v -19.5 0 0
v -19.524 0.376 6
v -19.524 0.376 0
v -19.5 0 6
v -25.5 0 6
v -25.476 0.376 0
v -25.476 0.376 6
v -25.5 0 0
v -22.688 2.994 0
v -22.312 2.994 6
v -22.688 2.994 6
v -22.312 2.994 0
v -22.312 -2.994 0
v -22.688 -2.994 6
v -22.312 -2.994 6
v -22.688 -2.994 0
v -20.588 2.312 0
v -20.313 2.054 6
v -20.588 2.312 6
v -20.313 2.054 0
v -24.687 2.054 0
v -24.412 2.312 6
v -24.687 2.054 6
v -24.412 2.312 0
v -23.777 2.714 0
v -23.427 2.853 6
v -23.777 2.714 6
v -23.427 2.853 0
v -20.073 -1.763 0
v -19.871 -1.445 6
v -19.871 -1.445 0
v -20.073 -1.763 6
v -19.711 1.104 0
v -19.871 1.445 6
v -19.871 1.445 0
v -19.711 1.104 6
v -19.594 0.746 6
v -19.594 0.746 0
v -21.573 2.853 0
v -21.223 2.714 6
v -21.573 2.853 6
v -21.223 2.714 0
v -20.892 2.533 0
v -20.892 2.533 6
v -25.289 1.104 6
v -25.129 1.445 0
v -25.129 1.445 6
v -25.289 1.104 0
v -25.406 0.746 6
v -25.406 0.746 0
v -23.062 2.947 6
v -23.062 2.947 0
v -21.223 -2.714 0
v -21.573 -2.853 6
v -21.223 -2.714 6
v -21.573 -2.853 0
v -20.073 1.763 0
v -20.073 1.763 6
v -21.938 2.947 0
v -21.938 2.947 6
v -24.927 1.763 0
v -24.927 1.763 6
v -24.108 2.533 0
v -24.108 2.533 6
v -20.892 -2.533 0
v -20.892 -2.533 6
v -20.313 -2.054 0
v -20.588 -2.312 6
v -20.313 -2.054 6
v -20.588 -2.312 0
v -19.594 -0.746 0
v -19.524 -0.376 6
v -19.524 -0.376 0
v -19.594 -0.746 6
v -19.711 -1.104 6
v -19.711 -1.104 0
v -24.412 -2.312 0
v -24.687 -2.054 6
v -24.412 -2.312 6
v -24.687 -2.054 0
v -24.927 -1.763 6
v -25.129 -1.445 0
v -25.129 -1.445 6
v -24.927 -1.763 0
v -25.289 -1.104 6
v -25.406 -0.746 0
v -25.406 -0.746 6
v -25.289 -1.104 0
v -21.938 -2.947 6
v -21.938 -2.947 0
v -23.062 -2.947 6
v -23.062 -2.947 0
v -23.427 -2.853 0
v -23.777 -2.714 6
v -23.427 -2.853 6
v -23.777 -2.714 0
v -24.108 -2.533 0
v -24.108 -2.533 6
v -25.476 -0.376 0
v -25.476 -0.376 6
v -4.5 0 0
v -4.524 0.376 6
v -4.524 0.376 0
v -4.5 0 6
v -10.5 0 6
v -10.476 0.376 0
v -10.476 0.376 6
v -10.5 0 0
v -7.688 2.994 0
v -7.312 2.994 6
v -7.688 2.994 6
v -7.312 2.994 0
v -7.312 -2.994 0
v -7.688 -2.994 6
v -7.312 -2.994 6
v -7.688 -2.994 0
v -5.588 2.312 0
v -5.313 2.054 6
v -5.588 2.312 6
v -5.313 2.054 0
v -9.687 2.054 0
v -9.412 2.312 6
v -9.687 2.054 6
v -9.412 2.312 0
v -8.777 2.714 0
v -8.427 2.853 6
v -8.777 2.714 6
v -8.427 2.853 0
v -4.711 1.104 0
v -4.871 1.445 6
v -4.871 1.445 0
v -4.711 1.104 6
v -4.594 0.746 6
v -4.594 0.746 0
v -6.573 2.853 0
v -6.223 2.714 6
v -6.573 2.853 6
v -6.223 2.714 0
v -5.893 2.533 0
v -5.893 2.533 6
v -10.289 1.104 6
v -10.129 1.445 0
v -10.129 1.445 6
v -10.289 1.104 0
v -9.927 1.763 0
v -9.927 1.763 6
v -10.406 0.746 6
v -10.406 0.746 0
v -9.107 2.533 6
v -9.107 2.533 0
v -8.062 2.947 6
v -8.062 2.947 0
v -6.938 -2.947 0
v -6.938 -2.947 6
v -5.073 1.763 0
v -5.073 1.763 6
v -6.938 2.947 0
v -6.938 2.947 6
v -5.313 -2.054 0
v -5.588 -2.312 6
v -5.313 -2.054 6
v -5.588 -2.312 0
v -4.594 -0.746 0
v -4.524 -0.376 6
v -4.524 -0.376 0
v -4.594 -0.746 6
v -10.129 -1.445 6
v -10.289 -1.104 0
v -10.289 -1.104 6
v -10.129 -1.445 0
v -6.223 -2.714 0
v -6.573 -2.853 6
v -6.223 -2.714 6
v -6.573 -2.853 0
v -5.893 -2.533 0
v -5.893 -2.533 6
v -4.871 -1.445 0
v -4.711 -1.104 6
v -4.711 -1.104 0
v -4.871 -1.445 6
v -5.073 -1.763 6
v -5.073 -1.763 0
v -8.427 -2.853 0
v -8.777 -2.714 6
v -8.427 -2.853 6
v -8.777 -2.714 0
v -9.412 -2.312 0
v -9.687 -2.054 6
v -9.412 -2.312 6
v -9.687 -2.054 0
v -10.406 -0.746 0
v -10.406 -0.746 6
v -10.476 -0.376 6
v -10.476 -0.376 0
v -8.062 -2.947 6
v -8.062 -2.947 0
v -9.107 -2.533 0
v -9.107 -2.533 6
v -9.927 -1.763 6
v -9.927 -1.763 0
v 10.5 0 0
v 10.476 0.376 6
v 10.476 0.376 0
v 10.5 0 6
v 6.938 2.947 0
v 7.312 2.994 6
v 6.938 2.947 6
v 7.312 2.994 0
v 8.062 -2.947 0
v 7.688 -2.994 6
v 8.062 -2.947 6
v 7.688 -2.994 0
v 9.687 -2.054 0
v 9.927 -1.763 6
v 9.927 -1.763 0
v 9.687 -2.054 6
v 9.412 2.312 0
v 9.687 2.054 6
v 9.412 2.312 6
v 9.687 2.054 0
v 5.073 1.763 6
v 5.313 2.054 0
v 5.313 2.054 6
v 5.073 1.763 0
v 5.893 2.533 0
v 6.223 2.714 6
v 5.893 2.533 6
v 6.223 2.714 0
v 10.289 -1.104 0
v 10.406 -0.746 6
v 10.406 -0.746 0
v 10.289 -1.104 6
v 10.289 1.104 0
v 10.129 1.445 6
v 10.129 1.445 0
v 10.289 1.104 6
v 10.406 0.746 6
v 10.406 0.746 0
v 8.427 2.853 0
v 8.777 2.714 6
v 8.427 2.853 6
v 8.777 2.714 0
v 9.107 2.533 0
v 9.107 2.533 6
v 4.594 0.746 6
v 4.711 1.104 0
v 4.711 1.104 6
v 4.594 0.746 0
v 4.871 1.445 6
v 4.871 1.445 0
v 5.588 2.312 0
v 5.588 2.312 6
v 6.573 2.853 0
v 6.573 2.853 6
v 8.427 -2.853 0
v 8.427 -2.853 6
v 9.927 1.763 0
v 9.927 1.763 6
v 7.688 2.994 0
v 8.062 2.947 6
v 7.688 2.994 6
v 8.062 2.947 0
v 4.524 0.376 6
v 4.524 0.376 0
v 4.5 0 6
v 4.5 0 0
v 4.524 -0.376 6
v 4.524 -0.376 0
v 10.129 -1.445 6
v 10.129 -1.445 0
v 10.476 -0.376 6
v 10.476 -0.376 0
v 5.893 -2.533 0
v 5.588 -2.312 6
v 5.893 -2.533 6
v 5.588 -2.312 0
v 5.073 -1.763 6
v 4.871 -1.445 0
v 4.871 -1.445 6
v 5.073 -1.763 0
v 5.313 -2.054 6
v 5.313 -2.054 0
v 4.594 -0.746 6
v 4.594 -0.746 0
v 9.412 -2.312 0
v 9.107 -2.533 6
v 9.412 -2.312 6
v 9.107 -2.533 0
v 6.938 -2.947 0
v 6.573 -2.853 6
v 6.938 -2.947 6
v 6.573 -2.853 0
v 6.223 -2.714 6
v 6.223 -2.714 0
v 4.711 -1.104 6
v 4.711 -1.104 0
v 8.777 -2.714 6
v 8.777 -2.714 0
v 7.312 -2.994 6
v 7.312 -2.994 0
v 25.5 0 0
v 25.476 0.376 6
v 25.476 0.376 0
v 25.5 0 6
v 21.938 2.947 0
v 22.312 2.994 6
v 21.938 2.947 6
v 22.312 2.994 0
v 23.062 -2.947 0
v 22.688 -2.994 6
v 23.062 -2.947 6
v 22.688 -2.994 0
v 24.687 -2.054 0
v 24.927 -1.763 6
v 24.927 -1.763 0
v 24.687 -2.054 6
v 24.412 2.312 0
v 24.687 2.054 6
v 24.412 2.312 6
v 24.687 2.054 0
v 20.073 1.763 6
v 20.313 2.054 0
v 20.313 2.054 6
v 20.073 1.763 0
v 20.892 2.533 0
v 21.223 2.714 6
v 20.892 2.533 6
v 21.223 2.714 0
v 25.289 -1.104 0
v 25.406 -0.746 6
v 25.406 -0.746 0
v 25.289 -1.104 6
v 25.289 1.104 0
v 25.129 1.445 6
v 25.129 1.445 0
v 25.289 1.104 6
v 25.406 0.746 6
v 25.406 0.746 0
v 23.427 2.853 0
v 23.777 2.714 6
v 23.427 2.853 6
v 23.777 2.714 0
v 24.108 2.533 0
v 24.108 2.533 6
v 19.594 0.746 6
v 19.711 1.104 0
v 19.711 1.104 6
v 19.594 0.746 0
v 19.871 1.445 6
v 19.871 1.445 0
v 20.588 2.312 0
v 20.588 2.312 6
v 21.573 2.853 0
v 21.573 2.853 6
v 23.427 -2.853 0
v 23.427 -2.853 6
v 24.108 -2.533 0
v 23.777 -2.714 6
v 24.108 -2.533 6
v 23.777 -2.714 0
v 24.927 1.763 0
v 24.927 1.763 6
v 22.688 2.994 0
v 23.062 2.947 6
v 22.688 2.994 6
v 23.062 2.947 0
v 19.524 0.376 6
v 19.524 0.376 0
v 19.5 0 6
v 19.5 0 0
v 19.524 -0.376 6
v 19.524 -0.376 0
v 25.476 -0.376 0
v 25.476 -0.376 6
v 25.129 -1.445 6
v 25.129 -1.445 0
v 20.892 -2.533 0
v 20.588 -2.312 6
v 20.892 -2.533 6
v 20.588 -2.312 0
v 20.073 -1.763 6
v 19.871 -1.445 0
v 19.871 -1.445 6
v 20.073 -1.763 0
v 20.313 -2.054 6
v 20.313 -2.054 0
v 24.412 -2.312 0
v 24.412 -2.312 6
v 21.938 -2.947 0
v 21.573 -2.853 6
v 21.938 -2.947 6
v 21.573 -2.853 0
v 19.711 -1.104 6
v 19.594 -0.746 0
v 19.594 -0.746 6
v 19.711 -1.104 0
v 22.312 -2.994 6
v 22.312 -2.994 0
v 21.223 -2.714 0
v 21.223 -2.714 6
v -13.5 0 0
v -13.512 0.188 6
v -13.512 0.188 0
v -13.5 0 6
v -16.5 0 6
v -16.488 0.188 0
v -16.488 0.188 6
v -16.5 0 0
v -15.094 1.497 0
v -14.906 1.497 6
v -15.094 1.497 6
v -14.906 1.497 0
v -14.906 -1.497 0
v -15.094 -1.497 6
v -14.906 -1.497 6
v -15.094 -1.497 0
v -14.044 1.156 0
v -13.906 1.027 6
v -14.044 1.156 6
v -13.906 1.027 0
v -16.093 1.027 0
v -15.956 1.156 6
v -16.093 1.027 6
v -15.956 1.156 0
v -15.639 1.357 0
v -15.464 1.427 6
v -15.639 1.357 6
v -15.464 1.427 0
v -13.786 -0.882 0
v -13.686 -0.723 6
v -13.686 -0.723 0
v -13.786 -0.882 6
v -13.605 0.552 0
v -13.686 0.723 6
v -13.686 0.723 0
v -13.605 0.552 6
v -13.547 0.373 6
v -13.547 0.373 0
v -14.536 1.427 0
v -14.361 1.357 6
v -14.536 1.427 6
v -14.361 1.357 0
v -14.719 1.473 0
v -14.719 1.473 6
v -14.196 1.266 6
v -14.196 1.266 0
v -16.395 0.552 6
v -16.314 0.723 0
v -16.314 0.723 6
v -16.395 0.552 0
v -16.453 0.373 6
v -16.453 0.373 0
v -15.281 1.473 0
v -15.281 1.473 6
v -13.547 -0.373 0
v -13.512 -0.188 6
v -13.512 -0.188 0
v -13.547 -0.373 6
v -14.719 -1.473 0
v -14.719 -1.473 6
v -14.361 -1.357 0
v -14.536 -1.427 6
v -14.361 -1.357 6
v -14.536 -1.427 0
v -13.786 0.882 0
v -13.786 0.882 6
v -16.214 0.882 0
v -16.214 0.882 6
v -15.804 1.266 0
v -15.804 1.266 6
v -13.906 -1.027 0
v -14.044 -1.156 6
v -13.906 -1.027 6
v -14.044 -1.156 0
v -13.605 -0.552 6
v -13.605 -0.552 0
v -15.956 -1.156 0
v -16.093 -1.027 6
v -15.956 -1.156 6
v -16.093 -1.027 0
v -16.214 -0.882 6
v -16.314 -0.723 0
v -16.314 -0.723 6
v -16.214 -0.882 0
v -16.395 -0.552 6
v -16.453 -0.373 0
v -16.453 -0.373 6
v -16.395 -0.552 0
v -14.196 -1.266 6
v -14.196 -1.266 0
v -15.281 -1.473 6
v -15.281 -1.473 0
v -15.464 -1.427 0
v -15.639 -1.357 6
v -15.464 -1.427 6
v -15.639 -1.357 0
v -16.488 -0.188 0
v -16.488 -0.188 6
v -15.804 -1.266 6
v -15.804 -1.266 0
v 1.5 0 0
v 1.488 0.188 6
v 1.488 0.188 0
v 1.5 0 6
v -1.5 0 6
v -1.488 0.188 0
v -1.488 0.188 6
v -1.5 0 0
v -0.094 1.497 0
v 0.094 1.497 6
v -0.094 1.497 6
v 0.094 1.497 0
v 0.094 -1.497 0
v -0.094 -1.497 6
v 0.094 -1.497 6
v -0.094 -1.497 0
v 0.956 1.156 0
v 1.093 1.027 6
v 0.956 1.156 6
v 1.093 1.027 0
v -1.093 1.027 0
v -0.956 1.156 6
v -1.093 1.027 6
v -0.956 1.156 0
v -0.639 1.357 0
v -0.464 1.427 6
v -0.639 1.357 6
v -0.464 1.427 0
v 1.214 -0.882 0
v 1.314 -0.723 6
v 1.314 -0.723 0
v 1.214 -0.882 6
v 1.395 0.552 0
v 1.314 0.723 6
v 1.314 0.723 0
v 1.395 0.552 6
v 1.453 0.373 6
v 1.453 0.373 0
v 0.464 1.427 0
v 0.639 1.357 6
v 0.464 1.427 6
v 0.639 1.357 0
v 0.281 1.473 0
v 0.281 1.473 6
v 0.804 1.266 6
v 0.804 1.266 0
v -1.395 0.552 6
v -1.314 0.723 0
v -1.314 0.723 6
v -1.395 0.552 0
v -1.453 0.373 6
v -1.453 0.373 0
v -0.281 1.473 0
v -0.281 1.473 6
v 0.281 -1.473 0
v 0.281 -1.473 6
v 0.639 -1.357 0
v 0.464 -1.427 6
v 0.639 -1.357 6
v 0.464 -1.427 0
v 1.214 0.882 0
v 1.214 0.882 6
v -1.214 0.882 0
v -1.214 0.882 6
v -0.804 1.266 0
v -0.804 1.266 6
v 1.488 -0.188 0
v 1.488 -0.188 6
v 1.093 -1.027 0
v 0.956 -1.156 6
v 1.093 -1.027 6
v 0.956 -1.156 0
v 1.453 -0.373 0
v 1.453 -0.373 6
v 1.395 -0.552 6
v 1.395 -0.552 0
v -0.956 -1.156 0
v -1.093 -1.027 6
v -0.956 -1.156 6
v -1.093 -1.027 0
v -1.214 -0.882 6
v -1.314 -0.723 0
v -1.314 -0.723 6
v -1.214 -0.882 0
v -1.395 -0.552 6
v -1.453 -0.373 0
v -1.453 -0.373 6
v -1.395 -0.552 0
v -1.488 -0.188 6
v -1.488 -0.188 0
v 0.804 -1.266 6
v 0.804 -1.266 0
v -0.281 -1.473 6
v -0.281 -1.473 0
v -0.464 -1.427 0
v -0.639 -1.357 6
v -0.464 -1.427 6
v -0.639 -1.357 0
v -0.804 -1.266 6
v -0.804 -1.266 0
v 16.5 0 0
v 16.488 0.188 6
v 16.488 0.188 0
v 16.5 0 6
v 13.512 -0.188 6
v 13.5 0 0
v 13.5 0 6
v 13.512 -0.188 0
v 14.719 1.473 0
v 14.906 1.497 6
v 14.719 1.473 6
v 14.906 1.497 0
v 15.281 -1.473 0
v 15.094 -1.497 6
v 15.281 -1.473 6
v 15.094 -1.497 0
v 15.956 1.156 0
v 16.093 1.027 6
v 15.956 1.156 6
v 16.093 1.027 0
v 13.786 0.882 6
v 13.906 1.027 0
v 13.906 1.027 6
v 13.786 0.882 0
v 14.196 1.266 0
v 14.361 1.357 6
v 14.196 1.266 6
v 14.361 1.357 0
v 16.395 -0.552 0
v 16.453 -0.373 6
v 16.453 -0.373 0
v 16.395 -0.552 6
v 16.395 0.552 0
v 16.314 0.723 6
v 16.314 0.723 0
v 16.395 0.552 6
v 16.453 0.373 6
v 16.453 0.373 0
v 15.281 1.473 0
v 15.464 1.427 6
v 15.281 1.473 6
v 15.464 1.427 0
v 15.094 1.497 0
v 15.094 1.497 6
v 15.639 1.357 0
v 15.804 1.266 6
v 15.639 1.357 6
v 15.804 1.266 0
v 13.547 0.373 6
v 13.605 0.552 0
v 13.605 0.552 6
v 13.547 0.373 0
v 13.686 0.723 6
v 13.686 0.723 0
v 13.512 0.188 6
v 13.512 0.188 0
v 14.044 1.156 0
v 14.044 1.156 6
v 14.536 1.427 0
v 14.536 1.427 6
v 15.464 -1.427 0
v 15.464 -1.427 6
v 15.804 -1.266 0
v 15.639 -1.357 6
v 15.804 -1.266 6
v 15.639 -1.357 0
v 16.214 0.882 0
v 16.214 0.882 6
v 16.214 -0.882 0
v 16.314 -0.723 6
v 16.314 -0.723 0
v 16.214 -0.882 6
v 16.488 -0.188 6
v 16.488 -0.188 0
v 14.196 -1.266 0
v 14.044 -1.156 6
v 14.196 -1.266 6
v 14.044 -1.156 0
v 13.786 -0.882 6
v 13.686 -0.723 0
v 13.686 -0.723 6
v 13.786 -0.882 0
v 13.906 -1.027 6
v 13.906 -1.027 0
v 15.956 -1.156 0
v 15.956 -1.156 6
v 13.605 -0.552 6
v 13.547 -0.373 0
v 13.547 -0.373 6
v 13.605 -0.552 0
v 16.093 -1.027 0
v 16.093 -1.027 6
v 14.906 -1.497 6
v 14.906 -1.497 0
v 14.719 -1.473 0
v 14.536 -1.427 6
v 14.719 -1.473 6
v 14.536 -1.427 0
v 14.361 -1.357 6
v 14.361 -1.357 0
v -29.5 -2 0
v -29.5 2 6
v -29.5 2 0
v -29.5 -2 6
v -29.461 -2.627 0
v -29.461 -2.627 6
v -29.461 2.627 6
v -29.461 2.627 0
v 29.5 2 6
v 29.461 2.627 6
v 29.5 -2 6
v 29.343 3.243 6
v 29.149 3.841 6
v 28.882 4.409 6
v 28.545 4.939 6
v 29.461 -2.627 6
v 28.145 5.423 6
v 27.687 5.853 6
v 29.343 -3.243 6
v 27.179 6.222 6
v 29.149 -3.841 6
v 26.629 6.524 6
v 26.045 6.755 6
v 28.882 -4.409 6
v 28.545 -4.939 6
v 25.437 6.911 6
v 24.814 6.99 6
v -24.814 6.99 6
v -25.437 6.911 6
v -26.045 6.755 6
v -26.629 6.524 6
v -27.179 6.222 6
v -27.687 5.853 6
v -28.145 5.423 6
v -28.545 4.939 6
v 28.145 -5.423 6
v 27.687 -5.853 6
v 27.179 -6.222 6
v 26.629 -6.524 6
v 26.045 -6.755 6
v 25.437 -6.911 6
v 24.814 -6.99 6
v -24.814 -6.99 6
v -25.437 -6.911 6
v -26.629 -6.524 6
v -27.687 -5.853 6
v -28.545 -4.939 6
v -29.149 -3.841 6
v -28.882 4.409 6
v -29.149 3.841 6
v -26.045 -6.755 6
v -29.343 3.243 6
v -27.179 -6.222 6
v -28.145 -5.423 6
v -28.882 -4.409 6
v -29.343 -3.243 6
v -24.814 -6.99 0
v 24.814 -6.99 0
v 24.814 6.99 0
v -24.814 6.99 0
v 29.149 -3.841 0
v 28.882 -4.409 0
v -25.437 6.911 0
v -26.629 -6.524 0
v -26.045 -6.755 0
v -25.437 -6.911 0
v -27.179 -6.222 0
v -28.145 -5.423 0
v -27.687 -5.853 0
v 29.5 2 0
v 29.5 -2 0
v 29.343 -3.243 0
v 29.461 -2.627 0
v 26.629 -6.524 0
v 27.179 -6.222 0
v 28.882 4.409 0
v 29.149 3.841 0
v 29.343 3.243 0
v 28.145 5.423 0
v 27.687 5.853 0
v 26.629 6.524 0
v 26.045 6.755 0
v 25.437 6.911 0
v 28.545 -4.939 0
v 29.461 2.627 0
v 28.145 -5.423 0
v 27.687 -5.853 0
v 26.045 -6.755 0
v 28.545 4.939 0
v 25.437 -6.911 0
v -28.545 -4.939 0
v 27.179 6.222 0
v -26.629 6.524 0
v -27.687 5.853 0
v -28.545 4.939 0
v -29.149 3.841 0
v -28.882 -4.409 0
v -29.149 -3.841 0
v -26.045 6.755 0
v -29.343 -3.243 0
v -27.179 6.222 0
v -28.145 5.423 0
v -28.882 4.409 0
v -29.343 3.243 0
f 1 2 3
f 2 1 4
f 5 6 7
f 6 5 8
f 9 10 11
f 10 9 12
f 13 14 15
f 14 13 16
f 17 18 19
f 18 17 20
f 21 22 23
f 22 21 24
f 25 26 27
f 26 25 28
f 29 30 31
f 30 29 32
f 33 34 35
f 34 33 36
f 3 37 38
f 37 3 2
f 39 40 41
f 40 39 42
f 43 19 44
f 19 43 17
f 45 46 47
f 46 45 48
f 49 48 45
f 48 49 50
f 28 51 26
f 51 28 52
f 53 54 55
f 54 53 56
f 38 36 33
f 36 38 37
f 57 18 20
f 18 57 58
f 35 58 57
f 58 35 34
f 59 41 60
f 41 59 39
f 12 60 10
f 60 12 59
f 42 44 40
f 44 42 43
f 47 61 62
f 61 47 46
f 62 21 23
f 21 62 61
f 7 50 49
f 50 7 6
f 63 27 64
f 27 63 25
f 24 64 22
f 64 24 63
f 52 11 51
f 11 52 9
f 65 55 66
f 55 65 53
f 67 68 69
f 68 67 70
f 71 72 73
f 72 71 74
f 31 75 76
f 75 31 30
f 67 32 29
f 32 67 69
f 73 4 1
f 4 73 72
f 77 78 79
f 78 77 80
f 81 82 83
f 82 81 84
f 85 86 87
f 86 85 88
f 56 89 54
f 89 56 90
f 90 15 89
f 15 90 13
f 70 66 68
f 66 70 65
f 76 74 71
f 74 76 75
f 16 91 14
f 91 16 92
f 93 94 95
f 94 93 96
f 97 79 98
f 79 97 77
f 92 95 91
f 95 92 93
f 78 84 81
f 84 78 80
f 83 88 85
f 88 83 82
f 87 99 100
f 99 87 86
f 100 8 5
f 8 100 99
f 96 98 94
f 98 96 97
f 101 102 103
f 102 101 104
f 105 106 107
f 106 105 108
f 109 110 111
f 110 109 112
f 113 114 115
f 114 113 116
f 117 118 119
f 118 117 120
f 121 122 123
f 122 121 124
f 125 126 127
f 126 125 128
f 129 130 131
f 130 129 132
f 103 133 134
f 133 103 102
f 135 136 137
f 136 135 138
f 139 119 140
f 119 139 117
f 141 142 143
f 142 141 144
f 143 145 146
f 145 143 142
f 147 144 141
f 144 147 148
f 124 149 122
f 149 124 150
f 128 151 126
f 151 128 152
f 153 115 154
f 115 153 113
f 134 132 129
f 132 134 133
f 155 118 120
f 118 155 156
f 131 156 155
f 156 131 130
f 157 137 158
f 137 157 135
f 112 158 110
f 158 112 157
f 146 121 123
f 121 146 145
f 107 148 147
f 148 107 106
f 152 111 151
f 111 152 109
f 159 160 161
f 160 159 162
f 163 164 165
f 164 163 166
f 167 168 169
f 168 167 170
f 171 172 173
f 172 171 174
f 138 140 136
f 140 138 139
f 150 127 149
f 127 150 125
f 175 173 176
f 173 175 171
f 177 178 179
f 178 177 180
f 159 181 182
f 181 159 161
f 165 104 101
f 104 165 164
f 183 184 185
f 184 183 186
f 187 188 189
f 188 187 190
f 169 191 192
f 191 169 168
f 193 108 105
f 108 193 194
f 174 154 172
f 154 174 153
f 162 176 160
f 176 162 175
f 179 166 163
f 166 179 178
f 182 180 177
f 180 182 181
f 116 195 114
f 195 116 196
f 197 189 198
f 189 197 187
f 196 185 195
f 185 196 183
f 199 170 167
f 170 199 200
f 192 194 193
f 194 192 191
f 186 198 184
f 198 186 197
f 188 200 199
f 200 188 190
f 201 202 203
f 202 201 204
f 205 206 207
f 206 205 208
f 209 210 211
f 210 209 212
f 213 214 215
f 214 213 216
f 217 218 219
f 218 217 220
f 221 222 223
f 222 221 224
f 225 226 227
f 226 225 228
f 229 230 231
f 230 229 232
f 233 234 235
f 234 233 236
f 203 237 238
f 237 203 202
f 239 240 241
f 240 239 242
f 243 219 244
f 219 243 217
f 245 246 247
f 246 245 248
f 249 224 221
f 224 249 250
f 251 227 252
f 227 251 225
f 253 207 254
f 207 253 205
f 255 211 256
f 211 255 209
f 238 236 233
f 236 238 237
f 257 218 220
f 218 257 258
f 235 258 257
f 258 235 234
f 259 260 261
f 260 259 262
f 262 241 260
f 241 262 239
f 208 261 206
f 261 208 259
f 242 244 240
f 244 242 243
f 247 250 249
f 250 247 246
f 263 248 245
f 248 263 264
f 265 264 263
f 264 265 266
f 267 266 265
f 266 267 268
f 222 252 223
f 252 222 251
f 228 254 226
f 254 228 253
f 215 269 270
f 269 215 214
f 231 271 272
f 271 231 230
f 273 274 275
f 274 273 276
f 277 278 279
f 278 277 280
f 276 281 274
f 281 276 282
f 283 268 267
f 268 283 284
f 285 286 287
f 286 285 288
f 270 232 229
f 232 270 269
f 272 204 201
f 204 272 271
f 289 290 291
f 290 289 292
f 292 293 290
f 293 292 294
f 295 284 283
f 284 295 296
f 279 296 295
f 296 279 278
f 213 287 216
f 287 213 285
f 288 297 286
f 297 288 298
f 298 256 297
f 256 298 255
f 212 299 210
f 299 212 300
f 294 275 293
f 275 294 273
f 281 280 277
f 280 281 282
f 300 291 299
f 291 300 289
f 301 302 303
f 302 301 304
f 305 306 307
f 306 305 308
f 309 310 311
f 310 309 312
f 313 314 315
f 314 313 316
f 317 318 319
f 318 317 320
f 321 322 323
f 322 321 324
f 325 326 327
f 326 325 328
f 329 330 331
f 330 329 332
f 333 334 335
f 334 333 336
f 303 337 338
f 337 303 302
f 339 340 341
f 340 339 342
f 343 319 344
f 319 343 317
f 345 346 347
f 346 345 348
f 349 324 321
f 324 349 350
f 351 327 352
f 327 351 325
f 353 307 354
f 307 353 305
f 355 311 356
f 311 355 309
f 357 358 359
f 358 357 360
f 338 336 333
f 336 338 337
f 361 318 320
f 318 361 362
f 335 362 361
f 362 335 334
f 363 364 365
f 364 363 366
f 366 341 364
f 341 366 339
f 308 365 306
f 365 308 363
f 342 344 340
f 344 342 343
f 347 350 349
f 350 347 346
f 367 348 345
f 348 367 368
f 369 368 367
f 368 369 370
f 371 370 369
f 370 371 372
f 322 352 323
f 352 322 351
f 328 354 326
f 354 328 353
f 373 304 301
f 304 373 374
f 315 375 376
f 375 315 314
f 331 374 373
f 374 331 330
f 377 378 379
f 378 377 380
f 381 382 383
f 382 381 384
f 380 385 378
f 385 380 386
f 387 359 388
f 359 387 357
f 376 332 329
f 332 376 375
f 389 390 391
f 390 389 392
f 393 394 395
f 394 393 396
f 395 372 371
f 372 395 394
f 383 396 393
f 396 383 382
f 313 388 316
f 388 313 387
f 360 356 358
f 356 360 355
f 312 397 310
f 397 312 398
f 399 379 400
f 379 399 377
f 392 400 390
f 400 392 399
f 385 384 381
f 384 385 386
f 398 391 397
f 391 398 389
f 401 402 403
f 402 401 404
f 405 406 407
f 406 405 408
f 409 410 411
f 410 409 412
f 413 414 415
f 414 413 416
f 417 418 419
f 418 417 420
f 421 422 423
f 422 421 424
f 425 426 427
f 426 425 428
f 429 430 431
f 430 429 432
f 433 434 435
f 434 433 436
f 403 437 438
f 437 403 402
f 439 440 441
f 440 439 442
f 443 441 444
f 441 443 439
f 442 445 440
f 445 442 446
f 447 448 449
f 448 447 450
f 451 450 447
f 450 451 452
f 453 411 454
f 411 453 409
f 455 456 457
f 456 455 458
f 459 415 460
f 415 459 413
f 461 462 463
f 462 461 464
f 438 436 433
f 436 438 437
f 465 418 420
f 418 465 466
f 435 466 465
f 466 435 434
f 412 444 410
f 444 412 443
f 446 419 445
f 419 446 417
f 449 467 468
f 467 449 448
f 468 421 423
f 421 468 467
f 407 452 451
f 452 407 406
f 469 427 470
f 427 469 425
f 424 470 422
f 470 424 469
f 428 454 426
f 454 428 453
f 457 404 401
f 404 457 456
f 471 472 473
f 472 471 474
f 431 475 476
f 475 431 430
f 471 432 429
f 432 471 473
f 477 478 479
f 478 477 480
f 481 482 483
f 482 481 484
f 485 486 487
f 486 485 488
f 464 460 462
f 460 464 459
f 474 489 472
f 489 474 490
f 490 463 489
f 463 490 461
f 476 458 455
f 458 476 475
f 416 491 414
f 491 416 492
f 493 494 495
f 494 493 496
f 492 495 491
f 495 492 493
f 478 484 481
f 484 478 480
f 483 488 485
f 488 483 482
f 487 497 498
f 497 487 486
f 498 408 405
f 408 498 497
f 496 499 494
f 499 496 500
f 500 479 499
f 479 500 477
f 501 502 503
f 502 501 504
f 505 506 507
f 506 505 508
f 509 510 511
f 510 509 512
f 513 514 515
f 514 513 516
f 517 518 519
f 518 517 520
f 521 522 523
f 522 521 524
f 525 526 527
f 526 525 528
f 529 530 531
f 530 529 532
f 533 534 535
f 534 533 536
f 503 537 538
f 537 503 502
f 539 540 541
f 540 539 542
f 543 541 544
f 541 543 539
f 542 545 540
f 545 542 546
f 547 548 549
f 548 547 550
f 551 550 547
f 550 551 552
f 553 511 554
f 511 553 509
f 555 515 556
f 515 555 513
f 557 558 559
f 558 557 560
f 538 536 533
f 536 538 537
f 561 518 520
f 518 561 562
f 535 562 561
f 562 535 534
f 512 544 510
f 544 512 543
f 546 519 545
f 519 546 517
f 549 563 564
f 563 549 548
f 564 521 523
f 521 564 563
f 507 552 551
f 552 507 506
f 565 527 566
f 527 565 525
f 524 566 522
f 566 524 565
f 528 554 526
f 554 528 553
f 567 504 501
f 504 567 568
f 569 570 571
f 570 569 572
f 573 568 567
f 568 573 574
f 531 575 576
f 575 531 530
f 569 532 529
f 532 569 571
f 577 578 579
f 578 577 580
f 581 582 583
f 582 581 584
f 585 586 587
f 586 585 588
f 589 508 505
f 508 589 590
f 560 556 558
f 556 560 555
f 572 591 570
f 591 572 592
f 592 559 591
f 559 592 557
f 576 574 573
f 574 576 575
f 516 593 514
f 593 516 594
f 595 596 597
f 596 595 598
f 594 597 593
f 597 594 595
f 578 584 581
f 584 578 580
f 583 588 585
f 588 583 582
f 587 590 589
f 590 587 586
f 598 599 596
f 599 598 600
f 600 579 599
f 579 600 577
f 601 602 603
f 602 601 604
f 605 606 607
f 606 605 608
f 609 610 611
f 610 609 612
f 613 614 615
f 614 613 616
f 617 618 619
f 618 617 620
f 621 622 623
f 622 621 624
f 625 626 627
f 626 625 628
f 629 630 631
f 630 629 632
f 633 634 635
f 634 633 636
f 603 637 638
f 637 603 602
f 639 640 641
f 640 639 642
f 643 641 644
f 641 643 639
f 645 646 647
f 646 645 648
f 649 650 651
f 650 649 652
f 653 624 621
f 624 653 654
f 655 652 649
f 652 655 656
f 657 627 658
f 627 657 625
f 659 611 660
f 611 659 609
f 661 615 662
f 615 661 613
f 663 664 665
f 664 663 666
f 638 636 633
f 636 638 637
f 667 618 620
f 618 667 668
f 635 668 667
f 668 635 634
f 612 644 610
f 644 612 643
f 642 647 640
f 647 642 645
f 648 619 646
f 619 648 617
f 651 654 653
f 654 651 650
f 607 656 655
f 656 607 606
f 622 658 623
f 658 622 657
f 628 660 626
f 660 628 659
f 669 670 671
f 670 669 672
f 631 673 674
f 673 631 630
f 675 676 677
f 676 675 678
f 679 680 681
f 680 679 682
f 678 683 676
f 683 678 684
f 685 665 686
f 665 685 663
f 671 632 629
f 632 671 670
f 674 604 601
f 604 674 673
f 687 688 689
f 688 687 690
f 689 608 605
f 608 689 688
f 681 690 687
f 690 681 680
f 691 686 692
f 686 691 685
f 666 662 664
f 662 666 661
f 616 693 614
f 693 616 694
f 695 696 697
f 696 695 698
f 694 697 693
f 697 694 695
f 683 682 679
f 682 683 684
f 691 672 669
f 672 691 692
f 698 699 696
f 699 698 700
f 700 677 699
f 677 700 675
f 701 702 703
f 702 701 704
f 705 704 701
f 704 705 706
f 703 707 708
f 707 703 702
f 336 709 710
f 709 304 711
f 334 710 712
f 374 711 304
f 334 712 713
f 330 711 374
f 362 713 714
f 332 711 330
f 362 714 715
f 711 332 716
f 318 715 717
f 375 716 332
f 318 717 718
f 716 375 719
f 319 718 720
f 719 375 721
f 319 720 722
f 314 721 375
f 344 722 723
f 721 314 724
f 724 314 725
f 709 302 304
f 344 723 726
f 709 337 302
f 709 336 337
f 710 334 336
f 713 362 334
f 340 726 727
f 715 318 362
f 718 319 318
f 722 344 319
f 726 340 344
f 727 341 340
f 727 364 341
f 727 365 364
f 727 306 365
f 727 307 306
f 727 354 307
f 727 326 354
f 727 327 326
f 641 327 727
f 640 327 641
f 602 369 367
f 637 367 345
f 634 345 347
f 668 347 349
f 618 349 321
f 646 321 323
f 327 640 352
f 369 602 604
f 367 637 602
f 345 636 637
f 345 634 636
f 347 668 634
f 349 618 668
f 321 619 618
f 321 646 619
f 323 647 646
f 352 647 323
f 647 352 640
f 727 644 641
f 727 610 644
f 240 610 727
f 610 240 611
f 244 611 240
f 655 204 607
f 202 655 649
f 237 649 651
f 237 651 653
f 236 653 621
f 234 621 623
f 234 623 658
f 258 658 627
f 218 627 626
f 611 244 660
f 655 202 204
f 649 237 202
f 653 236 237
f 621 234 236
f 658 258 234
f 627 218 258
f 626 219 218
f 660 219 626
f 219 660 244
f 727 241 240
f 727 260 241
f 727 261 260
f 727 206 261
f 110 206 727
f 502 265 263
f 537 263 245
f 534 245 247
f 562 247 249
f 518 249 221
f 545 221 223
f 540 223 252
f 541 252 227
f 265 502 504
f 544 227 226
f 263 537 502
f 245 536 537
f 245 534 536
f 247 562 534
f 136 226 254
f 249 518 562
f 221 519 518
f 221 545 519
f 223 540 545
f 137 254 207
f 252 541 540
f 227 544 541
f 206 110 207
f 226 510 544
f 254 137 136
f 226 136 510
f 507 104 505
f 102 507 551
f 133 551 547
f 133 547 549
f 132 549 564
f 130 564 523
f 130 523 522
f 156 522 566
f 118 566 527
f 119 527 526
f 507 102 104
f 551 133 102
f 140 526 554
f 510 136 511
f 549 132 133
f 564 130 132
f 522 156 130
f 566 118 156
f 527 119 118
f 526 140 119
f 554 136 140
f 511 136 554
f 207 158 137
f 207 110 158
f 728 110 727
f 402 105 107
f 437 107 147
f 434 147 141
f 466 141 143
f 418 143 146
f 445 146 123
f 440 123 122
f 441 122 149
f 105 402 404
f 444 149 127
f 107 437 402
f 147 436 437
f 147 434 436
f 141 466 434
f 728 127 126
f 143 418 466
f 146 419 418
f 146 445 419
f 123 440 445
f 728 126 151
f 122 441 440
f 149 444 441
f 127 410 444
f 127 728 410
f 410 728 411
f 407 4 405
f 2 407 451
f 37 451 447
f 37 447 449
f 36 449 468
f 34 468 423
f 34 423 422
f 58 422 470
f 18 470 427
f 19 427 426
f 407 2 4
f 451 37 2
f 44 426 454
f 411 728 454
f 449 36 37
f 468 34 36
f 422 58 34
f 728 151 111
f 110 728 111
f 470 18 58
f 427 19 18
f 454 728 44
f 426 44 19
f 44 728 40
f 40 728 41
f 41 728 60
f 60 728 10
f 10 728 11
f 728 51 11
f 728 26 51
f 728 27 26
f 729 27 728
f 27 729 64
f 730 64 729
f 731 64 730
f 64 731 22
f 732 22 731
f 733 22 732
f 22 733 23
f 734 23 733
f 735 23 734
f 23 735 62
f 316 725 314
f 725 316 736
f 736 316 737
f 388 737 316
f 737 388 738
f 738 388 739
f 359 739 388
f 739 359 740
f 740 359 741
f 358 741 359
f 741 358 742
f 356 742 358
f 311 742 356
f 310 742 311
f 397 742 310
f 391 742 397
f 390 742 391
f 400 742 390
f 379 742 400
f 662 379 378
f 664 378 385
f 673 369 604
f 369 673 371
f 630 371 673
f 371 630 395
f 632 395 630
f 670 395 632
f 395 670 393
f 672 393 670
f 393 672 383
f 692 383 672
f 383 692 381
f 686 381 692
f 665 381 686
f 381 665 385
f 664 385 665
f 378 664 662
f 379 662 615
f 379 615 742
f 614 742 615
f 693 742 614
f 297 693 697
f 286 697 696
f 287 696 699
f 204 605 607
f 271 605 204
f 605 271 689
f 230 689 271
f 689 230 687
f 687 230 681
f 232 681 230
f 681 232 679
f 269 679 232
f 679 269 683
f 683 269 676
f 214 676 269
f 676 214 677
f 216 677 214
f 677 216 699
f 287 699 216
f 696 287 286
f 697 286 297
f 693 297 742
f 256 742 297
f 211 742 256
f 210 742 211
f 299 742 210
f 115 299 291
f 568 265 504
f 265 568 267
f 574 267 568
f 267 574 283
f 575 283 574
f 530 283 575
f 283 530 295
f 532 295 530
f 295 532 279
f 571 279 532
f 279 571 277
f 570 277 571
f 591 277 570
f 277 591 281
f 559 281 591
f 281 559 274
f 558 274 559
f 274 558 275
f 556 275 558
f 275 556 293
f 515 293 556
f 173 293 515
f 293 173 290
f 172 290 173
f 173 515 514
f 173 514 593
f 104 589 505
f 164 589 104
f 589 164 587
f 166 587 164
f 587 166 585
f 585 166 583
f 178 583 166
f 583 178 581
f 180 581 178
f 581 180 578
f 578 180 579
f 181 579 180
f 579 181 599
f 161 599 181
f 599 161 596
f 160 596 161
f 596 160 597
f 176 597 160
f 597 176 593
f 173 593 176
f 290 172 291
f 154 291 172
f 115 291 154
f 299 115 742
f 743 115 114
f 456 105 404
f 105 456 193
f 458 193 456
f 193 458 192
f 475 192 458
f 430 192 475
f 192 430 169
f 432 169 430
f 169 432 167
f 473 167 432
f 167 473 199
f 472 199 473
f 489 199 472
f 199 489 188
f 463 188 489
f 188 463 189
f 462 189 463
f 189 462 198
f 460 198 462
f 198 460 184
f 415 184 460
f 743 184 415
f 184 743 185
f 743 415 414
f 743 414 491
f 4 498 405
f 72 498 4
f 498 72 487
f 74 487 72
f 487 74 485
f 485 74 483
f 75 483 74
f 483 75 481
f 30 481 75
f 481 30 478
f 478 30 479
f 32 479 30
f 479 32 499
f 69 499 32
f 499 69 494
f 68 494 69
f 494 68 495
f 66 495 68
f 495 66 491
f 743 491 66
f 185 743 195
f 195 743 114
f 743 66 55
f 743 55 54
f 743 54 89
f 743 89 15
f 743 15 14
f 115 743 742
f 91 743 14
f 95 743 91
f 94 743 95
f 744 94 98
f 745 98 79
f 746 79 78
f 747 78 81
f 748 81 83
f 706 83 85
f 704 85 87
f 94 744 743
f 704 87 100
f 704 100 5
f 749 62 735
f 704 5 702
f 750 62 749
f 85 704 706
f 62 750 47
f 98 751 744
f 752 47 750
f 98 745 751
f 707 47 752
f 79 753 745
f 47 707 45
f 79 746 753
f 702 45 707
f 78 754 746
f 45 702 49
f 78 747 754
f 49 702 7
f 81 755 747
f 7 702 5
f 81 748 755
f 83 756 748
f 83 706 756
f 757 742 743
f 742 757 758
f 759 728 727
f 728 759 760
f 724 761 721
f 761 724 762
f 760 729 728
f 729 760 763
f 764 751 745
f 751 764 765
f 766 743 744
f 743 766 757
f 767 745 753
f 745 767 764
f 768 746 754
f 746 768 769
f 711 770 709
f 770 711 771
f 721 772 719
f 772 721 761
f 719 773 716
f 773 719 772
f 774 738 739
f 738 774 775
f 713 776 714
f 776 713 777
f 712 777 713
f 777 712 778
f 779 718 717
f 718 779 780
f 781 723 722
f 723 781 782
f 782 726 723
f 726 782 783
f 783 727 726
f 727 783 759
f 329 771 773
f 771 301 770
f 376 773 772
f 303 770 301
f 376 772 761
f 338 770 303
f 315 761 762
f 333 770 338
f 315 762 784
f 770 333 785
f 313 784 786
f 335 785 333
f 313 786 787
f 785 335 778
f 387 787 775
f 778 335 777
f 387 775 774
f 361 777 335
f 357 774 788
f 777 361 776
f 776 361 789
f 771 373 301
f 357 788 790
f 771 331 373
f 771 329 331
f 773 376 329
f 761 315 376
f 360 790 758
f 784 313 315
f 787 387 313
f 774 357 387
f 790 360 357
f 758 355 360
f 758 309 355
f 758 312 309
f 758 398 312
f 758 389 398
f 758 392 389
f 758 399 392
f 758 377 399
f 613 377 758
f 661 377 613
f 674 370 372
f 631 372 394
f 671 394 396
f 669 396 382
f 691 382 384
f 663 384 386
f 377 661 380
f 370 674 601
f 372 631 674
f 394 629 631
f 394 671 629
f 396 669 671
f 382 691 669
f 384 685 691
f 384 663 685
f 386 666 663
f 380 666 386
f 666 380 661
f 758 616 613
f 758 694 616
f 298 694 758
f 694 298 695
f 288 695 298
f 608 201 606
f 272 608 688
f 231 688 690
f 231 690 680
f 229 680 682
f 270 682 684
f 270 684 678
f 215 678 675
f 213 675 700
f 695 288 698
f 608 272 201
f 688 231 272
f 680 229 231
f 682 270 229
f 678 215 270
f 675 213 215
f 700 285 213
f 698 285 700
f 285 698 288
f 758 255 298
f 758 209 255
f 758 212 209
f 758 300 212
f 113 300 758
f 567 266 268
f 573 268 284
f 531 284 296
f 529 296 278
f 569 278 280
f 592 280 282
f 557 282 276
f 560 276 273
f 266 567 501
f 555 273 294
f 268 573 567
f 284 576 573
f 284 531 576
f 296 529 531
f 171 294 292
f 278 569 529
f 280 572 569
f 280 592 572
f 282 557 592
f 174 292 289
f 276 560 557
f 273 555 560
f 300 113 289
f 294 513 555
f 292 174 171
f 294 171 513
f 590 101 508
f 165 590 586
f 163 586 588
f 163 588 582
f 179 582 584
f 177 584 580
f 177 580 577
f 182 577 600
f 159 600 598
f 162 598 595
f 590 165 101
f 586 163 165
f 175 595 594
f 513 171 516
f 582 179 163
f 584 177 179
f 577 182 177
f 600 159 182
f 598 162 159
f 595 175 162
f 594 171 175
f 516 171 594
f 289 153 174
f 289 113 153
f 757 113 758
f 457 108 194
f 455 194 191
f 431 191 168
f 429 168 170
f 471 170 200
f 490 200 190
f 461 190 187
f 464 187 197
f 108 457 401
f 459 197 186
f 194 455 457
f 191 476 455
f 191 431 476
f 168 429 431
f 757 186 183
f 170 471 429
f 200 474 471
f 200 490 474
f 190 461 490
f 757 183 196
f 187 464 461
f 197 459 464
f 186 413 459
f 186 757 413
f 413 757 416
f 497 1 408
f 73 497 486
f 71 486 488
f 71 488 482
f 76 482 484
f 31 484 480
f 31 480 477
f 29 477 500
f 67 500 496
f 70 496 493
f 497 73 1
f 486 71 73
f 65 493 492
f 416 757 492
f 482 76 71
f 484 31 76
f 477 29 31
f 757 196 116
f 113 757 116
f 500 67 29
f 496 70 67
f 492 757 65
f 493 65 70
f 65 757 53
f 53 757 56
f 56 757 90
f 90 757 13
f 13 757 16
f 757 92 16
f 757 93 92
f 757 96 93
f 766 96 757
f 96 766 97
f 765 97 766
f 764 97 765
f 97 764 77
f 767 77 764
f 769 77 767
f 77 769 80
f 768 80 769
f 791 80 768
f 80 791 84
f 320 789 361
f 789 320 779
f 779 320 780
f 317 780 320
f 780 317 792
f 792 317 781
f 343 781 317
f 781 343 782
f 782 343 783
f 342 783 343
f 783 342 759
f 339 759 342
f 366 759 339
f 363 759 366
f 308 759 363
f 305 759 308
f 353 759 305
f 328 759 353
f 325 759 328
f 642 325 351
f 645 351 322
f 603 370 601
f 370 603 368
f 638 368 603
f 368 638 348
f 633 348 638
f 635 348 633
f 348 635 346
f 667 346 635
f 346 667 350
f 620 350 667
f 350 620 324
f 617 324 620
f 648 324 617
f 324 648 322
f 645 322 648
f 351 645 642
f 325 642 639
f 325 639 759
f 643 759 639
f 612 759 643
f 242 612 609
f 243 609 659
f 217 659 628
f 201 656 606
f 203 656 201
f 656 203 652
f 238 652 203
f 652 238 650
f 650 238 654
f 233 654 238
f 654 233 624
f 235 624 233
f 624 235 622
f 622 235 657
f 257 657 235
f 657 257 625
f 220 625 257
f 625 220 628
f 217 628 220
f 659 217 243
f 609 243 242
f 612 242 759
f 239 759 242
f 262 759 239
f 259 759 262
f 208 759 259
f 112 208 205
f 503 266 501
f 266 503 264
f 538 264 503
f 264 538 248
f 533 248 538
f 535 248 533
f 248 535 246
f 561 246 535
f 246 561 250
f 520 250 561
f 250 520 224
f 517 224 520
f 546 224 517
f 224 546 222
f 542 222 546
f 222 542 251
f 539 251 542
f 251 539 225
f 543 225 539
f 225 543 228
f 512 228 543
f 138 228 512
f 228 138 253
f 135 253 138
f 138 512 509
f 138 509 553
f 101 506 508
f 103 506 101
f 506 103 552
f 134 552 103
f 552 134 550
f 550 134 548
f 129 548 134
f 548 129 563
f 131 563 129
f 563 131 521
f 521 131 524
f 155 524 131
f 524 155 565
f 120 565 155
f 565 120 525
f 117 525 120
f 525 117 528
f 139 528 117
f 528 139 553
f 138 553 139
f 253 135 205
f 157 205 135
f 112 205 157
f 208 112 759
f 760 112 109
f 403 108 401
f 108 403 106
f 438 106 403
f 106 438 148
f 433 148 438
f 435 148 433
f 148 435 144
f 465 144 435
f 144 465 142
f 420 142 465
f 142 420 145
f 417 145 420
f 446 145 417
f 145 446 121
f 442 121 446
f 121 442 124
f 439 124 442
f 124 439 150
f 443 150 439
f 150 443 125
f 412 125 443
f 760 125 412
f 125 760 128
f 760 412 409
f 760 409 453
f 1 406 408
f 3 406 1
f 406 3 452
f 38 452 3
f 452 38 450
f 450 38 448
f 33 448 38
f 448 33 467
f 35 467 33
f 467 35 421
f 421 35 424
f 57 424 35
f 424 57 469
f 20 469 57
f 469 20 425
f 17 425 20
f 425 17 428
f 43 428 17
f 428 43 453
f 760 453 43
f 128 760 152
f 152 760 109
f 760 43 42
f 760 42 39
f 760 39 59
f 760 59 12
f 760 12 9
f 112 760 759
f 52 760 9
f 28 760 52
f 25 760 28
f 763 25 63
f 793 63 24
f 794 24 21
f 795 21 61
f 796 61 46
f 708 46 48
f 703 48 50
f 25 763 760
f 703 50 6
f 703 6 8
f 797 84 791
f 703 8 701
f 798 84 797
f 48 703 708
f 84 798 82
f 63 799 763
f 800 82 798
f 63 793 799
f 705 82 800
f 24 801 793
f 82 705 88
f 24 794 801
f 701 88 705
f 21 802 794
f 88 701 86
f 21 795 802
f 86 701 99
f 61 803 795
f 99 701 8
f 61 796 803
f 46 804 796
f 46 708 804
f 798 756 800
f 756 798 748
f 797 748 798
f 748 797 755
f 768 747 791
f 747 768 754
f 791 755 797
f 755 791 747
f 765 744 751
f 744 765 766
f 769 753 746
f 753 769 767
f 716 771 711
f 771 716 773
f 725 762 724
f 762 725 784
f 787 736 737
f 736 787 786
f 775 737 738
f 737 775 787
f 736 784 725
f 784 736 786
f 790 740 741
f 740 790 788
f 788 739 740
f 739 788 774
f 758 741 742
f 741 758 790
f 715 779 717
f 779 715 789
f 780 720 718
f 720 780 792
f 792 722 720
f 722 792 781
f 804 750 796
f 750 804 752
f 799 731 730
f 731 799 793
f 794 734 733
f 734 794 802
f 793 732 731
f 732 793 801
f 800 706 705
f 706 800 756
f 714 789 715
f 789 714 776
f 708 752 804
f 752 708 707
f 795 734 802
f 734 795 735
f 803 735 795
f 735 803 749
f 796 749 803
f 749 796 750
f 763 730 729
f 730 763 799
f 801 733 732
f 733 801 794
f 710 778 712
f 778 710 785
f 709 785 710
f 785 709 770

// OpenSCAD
$fn = 50;


difference() {
	union() {
		translate(v = [0, 0, 0]) {
			rotate(a = [0, 0, 0]) {
				hull() {
					translate(v = [-24.5000000000, 2.0000000000, 0]) {
						rotate(a = [0, 0, 0]) {
							translate(v = [0, 0, 0]) {
								rotate(a = [0, 0, 0]) {
									cylinder(h = 6, r = 5);
								}
							}
						}
					}
					translate(v = [24.5000000000, 2.0000000000, 0]) {
						rotate(a = [0, 0, 0]) {
							translate(v = [0, 0, 0]) {
								rotate(a = [0, 0, 0]) {
									cylinder(h = 6, r = 5);
								}
							}
						}
					}
					translate(v = [-24.5000000000, -2.0000000000, 0]) {
						rotate(a = [0, 0, 0]) {
							translate(v = [0, 0, 0]) {
								rotate(a = [0, 0, 0]) {
									cylinder(h = 6, r = 5);
								}
							}
						}
					}
					translate(v = [24.5000000000, -2.0000000000, 0]) {
						rotate(a = [0, 0, 0]) {
							translate(v = [0, 0, 0]) {
								rotate(a = [0, 0, 0]) {
									cylinder(h = 6, r = 5);
								}
							}
						}
					}
				}
			}
		}
	}
	union() {
		translate(v = [-22.5000000000, 0.0000000000, 0]) {
			rotate(a = [0, 0, 0]) {
				translate(v = [0, 0, -50]) {
					rotate(a = [0, 0, 0]) {
						cylinder(h = 100, r = 3.0000000000);
					}
				}
			}
		}
		translate(v = [-7.5000000000, 0.0000000000, 0]) {
			rotate(a = [0, 0, 0]) {
				translate(v = [0, 0, -50]) {
					rotate(a = [0, 0, 0]) {
						cylinder(h = 100, r = 3.0000000000);
					}
				}
			}
		}
		translate(v = [7.5000000000, 0.0000000000, 0]) {
			rotate(a = [0, 0, 0]) {
				translate(v = [0, 0, -50]) {
					rotate(a = [0, 0, 0]) {
						cylinder(h = 100, r = 3.0000000000);
					}
				}
			}
		}
		translate(v = [22.5000000000, 0.0000000000, 0]) {
			rotate(a = [0, 0, 0]) {
				translate(v = [0, 0, -50]) {
					rotate(a = [0, 0, 0]) {
						cylinder(h = 100, r = 3.0000000000);
					}
				}
			}
		}
		translate(v = [-22.5000000000, 0.0000000000, 0]) {
			rotate(a = [0, 0, 0]) {
				translate(v = [0, 0, -50]) {
					rotate(a = [0, 0, 0]) {
						cylinder(h = 100, r = 1.5000000000);
					}
				}
			}
		}
		translate(v = [-15.0000000000, 0.0000000000, 0]) {
			rotate(a = [0, 0, 0]) {
				translate(v = [0, 0, -50]) {
					rotate(a = [0, 0, 0]) {
						cylinder(h = 100, r = 1.5000000000);
					}
				}
			}
		}
		translate(v = [-7.5000000000, 0.0000000000, 0]) {
			rotate(a = [0, 0, 0]) {
				translate(v = [0, 0, -50]) {
					rotate(a = [0, 0, 0]) {
						cylinder(h = 100, r = 1.5000000000);
					}
				}
			}
		}
		translate(v = [0.0000000000, 0.0000000000, 0]) {
			rotate(a = [0, 0, 0]) {
				translate(v = [0, 0, -50]) {
					rotate(a = [0, 0, 0]) {
						cylinder(h = 100, r = 1.5000000000);
					}
				}
			}
		}
		translate(v = [7.5000000000, 0.0000000000, 0]) {
			rotate(a = [0, 0, 0]) {
				translate(v = [0, 0, -50]) {
					rotate(a = [0, 0, 0]) {
						cylinder(h = 100, r = 1.5000000000);
					}
				}
			}
		}
		translate(v = [15.0000000000, 0.0000000000, 0]) {
			rotate(a = [0, 0, 0]) {
				translate(v = [0, 0, -50]) {
					rotate(a = [0, 0, 0]) {
						cylinder(h = 100, r = 1.5000000000);
					}
				}
			}
		}
		translate(v = [22.5000000000, 0.0000000000, 0]) {
			rotate(a = [0, 0, 0]) {
				translate(v = [0, 0, -50]) {
					rotate(a = [0, 0, 0]) {
						cylinder(h = 100, r = 1.5000000000);
					}
				}
			}
		}
	}
}
